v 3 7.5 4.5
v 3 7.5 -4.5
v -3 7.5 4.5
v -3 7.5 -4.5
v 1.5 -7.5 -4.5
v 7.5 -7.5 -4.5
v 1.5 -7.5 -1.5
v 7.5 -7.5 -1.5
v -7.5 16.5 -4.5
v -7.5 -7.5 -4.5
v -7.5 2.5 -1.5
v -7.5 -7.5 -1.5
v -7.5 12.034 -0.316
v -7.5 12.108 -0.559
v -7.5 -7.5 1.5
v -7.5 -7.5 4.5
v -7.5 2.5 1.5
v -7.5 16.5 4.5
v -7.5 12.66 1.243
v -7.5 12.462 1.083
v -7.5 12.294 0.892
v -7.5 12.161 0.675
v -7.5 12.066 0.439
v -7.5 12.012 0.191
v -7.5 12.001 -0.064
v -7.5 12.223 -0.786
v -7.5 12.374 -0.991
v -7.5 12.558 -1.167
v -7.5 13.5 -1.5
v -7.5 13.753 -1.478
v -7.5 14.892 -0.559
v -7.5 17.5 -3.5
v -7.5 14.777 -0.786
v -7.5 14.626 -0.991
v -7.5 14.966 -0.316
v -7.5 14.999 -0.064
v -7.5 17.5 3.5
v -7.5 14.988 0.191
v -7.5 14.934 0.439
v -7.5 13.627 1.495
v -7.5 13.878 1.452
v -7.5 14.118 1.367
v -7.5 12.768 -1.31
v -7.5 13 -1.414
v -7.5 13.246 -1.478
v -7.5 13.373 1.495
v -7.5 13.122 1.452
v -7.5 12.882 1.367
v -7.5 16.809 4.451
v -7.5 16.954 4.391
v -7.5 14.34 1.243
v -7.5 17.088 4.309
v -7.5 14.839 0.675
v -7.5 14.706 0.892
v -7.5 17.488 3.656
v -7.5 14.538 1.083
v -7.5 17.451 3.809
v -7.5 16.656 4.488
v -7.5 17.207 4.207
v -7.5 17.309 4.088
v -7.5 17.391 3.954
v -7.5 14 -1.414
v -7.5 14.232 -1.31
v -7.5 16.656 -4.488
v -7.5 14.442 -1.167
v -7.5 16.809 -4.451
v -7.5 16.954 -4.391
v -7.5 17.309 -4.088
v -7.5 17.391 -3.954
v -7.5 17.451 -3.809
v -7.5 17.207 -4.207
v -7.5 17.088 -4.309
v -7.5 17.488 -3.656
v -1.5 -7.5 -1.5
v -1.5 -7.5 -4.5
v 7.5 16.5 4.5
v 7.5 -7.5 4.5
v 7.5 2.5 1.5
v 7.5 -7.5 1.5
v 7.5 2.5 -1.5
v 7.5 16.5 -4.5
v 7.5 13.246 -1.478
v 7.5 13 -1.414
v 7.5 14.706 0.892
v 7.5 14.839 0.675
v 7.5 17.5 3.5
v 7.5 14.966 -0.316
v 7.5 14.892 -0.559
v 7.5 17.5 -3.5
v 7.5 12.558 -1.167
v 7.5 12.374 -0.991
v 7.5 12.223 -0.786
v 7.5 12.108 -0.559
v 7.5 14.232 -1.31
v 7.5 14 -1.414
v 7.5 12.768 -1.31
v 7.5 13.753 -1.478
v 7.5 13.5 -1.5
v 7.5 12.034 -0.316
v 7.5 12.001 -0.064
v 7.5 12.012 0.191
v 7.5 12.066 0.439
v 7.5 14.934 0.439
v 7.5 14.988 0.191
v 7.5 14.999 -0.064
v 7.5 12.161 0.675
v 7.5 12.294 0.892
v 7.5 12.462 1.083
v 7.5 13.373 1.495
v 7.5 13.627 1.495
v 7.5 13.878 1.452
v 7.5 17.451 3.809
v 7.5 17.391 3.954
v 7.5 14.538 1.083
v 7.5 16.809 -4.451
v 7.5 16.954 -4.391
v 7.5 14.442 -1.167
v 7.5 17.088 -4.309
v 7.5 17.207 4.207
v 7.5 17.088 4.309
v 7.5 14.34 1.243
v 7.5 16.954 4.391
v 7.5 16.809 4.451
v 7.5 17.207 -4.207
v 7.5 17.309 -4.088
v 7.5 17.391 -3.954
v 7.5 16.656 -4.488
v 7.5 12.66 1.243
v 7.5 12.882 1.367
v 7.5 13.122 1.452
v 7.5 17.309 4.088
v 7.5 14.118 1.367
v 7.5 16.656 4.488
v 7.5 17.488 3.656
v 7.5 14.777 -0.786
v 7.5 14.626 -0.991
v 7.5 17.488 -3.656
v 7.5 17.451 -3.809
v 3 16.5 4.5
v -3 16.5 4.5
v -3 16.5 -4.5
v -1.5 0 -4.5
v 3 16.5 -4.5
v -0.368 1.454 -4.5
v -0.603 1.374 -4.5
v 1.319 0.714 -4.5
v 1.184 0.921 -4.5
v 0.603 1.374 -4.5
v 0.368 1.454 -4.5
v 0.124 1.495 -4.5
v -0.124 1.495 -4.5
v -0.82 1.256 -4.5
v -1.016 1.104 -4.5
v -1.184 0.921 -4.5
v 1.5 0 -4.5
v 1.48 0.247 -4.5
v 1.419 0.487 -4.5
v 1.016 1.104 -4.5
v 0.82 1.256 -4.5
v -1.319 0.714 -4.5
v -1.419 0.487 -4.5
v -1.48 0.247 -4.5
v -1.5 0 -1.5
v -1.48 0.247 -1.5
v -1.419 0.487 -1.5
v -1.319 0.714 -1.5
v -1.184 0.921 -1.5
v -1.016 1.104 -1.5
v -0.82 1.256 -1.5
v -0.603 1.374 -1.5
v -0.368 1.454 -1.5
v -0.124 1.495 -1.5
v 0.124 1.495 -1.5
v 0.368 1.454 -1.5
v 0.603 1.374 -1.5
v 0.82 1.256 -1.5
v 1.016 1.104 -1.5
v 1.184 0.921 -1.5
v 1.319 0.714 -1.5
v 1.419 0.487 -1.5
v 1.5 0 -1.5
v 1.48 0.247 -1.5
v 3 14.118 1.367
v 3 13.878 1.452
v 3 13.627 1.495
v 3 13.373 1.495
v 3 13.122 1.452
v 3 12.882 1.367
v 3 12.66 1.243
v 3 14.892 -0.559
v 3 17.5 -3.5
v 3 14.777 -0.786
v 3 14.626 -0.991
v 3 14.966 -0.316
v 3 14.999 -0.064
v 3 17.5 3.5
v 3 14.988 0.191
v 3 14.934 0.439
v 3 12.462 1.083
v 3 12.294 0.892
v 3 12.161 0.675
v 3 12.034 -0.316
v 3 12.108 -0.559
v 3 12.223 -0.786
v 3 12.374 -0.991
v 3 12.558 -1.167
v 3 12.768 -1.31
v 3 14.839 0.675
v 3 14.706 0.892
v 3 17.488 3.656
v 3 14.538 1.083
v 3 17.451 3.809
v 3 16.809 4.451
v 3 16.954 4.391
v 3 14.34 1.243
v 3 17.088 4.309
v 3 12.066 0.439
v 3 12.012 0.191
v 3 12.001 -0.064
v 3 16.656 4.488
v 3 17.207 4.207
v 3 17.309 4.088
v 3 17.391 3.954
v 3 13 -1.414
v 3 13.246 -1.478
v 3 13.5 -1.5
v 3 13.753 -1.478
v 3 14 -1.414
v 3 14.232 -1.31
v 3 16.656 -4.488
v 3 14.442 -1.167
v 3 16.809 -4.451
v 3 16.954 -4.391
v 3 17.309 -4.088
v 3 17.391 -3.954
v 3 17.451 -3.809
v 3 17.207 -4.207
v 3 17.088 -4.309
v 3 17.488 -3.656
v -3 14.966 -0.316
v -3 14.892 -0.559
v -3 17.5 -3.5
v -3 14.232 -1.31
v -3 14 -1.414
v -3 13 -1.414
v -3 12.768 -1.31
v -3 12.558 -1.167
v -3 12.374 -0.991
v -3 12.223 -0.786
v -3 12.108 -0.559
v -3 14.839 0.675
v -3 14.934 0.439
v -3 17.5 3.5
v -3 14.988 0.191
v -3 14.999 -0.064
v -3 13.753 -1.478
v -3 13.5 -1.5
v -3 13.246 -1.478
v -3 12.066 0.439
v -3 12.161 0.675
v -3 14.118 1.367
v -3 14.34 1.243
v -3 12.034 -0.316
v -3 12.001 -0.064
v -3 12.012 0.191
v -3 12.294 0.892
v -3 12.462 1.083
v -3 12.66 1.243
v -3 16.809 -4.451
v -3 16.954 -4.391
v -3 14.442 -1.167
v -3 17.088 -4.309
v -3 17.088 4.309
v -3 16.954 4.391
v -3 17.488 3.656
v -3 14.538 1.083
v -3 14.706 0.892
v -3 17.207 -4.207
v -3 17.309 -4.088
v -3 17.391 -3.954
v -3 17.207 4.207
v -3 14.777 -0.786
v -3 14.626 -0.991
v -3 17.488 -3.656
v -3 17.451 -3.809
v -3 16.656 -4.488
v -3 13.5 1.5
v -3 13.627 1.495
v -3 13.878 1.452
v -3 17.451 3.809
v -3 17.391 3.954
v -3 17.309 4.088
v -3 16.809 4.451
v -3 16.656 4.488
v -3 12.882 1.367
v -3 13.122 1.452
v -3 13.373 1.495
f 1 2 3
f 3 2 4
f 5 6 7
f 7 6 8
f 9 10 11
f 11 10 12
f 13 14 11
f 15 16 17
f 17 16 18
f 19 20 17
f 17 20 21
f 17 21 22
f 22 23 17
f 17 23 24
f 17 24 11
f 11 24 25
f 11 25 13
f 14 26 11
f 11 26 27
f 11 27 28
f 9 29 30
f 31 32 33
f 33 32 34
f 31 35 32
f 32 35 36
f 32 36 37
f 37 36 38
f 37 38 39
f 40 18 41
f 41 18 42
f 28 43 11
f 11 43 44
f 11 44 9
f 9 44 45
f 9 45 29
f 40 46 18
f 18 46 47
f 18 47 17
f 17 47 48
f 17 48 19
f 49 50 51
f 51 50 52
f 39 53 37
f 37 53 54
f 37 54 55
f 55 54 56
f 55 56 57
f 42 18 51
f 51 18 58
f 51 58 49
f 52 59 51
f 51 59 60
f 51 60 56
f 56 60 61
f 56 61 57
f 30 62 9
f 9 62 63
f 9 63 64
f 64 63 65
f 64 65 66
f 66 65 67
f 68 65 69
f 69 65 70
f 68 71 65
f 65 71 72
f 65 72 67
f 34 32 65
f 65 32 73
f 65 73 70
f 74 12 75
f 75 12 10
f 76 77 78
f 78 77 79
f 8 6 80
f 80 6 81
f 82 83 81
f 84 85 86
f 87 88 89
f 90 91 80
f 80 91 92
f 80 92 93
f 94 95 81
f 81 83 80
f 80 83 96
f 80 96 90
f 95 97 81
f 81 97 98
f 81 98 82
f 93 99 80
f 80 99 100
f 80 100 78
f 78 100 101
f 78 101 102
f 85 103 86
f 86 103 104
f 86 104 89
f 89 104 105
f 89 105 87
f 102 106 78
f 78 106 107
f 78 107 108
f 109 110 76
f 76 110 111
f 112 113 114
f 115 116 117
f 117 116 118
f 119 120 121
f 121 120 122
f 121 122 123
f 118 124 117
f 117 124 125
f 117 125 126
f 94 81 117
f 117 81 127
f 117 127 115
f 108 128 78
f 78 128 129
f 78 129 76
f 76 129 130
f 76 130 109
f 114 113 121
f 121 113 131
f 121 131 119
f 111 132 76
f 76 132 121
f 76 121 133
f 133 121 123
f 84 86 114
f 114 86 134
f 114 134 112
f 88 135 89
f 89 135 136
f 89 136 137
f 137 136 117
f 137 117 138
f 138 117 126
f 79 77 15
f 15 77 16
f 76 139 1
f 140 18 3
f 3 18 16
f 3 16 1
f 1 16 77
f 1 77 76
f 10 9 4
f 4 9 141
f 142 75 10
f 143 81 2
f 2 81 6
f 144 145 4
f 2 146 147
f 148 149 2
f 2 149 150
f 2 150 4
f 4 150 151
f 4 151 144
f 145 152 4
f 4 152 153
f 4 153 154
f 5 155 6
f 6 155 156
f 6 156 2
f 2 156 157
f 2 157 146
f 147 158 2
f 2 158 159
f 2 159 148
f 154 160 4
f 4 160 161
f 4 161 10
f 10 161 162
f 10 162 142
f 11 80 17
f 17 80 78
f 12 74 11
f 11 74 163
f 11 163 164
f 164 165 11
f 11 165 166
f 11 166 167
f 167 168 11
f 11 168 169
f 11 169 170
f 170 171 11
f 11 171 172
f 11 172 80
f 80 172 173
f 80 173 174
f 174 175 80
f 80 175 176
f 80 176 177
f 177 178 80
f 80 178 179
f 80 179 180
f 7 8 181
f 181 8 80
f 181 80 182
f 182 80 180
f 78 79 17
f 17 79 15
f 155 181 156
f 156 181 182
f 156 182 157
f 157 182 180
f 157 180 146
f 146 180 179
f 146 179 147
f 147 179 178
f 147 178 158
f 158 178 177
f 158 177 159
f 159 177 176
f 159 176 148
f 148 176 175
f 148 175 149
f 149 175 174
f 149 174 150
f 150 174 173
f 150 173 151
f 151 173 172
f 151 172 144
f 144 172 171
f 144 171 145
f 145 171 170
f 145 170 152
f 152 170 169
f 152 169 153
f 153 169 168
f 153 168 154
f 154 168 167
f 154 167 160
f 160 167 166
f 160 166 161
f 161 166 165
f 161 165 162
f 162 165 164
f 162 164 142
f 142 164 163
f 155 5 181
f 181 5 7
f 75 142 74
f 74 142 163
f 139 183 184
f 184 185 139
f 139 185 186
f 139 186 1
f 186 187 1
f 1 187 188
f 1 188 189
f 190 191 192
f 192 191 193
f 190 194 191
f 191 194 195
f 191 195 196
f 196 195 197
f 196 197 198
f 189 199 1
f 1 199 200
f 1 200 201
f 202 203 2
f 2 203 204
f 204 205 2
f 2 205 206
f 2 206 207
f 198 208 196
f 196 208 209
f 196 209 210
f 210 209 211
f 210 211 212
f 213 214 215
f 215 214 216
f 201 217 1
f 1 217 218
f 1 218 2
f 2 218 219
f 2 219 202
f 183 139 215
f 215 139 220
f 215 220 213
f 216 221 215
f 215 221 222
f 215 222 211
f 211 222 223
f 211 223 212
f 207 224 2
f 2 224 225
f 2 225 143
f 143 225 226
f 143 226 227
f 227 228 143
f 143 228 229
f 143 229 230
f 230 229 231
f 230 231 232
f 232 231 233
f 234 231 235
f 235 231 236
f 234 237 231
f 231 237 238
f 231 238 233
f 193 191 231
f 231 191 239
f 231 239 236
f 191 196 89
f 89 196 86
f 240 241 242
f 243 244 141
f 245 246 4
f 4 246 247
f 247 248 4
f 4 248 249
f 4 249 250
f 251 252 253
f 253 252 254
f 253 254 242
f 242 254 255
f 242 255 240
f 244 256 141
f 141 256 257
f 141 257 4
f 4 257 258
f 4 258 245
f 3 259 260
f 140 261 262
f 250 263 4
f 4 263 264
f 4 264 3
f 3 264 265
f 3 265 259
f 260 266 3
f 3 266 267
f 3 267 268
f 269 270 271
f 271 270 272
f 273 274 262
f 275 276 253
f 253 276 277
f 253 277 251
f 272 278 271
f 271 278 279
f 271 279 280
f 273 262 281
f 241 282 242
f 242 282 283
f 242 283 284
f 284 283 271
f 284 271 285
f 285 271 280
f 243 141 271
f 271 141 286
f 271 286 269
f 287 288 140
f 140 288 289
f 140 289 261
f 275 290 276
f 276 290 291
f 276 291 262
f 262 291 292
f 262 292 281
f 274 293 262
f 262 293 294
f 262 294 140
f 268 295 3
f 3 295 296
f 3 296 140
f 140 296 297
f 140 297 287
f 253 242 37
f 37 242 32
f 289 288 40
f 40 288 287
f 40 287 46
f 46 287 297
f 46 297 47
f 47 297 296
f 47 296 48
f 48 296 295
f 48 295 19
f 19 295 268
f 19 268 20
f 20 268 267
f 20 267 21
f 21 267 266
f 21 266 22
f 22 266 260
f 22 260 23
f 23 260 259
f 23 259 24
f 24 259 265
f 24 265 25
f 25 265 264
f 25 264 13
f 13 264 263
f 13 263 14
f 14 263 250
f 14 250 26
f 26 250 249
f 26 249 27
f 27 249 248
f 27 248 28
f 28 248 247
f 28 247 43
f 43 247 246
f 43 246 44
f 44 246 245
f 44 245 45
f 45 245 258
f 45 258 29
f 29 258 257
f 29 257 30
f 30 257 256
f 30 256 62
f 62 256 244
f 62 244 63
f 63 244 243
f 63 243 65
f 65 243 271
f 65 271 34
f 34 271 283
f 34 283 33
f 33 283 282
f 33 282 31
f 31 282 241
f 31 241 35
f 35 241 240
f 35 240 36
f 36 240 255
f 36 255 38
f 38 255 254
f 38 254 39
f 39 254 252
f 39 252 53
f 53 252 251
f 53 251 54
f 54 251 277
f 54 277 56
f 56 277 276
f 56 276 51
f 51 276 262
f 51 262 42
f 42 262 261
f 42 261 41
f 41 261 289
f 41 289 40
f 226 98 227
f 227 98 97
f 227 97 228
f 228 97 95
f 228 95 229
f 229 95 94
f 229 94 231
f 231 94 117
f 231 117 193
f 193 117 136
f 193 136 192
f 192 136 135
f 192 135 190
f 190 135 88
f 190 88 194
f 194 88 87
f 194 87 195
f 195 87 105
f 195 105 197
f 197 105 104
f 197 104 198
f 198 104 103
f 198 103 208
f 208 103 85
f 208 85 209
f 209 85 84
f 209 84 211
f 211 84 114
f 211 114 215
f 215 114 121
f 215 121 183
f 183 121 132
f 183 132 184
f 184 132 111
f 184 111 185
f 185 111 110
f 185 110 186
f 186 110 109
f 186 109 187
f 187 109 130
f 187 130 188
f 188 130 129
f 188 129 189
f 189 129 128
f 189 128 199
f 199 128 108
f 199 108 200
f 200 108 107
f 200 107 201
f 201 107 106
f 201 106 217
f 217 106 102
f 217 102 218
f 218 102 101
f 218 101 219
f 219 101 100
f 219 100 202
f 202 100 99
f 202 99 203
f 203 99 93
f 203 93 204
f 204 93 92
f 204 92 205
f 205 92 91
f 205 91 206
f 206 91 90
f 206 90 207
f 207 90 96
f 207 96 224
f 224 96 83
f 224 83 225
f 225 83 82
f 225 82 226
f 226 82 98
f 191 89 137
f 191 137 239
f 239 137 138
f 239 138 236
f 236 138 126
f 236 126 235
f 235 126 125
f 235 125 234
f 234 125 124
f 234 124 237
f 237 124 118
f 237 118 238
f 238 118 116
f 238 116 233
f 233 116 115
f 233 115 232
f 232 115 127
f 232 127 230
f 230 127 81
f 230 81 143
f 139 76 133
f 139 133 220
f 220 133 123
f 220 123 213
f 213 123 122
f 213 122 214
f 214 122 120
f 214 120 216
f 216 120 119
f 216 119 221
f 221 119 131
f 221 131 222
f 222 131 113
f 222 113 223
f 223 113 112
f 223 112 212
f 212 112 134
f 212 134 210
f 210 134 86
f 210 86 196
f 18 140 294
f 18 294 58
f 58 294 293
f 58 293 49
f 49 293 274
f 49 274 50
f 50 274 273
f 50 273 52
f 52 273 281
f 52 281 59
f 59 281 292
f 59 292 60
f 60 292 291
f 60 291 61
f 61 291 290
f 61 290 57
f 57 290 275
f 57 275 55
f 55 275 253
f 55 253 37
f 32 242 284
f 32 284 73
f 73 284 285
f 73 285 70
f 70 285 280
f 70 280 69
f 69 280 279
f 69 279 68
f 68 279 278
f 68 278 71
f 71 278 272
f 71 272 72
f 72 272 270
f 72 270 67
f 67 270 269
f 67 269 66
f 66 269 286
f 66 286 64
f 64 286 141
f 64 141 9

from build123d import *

# Parameters (mm, degrees)
CROQUIS2_W                 = 15
CROQUIS2_H                 = 15
SALIENTE_EXTRUIR1_DEPTH    = 4.5
CROQUIS3_W                 = 15
CROQUIS3_H                 = 10
CORTAR_EXTRUIR1_DEPTH      = 1.5
CORTAR_EXTRUIR2_DEPTH      = 12.521718622
CROQUIS10_W                = 4.5
CROQUIS10_H                = 9
SALIENTE_EXTRUIR4_DEPTH    = 10
CORTAR_EXTRUIR3_DEPTH      = 20.563997547
CORTAR_EXTRUIR3_DEPTH_BACK = 20.563997547
CROQUIS7_R                 = 1.5
REDONDEO2_R                = 1


with BuildPart() as part:
    # Croquis2 → Saliente-Extruir1 (new, symmetric)
    with BuildSketch(Plane.XY):
        Rectangle(CROQUIS2_W, CROQUIS2_H)
    extrude(amount=SALIENTE_EXTRUIR1_DEPTH, both=True)

    # Croquis3 → Cortar-Extruir1 (cut, symmetric)
    with BuildSketch(Plane.XY):
        with Locations((0, -2.5)):
            Rectangle(CROQUIS3_W, CROQUIS3_H)
    extrude(amount=CORTAR_EXTRUIR1_DEPTH, both=True, mode=Mode.SUBTRACT)

    # Croquis4 → Cortar-Extruir2 (cut, through all)
    with BuildSketch(Plane.XY):
        with BuildLine():
            Line((-1.5, 0), (-1.5, -7.5))
            Line((-1.5, -7.5), (1.5, -7.5))
            Line((1.5, -7.5), (1.5, 0))
            ThreePointArc((1.5, 0), (0, 1.5), (-1.5, 0))
        make_face()
    extrude(amount=-CORTAR_EXTRUIR2_DEPTH, mode=Mode.SUBTRACT)

    # Croquis10 → Saliente-Extruir4 (add)
    with BuildSketch(Plane(origin=(0, 7.5, 0), x_dir=(1, 0, 0), z_dir=(0, 1, 0))):
        with Locations((-5.25, 0)):
            Rectangle(CROQUIS10_W, CROQUIS10_H)
        with Locations((5.25, 0)):
            Rectangle(CROQUIS10_W, CROQUIS10_H)
    extrude(amount=SALIENTE_EXTRUIR4_DEPTH)

    # Croquis7 → Cortar-Extruir3 (cut, two sides: drawn at the far end of the back side and taken through both)
    with BuildSketch(Plane(origin=(0, 0, 0), x_dir=(0, 0, -1), z_dir=(1, 0, 0)).offset(-CORTAR_EXTRUIR3_DEPTH_BACK)):
        with Locations((0, 13.5)):
            Circle(CROQUIS7_R)
    extrude(amount=CORTAR_EXTRUIR3_DEPTH + CORTAR_EXTRUIR3_DEPTH_BACK, mode=Mode.SUBTRACT)

    # Redondeo2
    redondeo2_edges = [part.edges().sort_by_distance(p)[0] for p in [
        (5.25, 17.5, -4.5),
        (5.25, 17.5, 4.5),
        (-5.25, 17.5, 4.5),
        (-5.25, 17.5, -4.5),
    ]]
    fillet(redondeo2_edges, radius=REDONDEO2_R)


solid = part.part
